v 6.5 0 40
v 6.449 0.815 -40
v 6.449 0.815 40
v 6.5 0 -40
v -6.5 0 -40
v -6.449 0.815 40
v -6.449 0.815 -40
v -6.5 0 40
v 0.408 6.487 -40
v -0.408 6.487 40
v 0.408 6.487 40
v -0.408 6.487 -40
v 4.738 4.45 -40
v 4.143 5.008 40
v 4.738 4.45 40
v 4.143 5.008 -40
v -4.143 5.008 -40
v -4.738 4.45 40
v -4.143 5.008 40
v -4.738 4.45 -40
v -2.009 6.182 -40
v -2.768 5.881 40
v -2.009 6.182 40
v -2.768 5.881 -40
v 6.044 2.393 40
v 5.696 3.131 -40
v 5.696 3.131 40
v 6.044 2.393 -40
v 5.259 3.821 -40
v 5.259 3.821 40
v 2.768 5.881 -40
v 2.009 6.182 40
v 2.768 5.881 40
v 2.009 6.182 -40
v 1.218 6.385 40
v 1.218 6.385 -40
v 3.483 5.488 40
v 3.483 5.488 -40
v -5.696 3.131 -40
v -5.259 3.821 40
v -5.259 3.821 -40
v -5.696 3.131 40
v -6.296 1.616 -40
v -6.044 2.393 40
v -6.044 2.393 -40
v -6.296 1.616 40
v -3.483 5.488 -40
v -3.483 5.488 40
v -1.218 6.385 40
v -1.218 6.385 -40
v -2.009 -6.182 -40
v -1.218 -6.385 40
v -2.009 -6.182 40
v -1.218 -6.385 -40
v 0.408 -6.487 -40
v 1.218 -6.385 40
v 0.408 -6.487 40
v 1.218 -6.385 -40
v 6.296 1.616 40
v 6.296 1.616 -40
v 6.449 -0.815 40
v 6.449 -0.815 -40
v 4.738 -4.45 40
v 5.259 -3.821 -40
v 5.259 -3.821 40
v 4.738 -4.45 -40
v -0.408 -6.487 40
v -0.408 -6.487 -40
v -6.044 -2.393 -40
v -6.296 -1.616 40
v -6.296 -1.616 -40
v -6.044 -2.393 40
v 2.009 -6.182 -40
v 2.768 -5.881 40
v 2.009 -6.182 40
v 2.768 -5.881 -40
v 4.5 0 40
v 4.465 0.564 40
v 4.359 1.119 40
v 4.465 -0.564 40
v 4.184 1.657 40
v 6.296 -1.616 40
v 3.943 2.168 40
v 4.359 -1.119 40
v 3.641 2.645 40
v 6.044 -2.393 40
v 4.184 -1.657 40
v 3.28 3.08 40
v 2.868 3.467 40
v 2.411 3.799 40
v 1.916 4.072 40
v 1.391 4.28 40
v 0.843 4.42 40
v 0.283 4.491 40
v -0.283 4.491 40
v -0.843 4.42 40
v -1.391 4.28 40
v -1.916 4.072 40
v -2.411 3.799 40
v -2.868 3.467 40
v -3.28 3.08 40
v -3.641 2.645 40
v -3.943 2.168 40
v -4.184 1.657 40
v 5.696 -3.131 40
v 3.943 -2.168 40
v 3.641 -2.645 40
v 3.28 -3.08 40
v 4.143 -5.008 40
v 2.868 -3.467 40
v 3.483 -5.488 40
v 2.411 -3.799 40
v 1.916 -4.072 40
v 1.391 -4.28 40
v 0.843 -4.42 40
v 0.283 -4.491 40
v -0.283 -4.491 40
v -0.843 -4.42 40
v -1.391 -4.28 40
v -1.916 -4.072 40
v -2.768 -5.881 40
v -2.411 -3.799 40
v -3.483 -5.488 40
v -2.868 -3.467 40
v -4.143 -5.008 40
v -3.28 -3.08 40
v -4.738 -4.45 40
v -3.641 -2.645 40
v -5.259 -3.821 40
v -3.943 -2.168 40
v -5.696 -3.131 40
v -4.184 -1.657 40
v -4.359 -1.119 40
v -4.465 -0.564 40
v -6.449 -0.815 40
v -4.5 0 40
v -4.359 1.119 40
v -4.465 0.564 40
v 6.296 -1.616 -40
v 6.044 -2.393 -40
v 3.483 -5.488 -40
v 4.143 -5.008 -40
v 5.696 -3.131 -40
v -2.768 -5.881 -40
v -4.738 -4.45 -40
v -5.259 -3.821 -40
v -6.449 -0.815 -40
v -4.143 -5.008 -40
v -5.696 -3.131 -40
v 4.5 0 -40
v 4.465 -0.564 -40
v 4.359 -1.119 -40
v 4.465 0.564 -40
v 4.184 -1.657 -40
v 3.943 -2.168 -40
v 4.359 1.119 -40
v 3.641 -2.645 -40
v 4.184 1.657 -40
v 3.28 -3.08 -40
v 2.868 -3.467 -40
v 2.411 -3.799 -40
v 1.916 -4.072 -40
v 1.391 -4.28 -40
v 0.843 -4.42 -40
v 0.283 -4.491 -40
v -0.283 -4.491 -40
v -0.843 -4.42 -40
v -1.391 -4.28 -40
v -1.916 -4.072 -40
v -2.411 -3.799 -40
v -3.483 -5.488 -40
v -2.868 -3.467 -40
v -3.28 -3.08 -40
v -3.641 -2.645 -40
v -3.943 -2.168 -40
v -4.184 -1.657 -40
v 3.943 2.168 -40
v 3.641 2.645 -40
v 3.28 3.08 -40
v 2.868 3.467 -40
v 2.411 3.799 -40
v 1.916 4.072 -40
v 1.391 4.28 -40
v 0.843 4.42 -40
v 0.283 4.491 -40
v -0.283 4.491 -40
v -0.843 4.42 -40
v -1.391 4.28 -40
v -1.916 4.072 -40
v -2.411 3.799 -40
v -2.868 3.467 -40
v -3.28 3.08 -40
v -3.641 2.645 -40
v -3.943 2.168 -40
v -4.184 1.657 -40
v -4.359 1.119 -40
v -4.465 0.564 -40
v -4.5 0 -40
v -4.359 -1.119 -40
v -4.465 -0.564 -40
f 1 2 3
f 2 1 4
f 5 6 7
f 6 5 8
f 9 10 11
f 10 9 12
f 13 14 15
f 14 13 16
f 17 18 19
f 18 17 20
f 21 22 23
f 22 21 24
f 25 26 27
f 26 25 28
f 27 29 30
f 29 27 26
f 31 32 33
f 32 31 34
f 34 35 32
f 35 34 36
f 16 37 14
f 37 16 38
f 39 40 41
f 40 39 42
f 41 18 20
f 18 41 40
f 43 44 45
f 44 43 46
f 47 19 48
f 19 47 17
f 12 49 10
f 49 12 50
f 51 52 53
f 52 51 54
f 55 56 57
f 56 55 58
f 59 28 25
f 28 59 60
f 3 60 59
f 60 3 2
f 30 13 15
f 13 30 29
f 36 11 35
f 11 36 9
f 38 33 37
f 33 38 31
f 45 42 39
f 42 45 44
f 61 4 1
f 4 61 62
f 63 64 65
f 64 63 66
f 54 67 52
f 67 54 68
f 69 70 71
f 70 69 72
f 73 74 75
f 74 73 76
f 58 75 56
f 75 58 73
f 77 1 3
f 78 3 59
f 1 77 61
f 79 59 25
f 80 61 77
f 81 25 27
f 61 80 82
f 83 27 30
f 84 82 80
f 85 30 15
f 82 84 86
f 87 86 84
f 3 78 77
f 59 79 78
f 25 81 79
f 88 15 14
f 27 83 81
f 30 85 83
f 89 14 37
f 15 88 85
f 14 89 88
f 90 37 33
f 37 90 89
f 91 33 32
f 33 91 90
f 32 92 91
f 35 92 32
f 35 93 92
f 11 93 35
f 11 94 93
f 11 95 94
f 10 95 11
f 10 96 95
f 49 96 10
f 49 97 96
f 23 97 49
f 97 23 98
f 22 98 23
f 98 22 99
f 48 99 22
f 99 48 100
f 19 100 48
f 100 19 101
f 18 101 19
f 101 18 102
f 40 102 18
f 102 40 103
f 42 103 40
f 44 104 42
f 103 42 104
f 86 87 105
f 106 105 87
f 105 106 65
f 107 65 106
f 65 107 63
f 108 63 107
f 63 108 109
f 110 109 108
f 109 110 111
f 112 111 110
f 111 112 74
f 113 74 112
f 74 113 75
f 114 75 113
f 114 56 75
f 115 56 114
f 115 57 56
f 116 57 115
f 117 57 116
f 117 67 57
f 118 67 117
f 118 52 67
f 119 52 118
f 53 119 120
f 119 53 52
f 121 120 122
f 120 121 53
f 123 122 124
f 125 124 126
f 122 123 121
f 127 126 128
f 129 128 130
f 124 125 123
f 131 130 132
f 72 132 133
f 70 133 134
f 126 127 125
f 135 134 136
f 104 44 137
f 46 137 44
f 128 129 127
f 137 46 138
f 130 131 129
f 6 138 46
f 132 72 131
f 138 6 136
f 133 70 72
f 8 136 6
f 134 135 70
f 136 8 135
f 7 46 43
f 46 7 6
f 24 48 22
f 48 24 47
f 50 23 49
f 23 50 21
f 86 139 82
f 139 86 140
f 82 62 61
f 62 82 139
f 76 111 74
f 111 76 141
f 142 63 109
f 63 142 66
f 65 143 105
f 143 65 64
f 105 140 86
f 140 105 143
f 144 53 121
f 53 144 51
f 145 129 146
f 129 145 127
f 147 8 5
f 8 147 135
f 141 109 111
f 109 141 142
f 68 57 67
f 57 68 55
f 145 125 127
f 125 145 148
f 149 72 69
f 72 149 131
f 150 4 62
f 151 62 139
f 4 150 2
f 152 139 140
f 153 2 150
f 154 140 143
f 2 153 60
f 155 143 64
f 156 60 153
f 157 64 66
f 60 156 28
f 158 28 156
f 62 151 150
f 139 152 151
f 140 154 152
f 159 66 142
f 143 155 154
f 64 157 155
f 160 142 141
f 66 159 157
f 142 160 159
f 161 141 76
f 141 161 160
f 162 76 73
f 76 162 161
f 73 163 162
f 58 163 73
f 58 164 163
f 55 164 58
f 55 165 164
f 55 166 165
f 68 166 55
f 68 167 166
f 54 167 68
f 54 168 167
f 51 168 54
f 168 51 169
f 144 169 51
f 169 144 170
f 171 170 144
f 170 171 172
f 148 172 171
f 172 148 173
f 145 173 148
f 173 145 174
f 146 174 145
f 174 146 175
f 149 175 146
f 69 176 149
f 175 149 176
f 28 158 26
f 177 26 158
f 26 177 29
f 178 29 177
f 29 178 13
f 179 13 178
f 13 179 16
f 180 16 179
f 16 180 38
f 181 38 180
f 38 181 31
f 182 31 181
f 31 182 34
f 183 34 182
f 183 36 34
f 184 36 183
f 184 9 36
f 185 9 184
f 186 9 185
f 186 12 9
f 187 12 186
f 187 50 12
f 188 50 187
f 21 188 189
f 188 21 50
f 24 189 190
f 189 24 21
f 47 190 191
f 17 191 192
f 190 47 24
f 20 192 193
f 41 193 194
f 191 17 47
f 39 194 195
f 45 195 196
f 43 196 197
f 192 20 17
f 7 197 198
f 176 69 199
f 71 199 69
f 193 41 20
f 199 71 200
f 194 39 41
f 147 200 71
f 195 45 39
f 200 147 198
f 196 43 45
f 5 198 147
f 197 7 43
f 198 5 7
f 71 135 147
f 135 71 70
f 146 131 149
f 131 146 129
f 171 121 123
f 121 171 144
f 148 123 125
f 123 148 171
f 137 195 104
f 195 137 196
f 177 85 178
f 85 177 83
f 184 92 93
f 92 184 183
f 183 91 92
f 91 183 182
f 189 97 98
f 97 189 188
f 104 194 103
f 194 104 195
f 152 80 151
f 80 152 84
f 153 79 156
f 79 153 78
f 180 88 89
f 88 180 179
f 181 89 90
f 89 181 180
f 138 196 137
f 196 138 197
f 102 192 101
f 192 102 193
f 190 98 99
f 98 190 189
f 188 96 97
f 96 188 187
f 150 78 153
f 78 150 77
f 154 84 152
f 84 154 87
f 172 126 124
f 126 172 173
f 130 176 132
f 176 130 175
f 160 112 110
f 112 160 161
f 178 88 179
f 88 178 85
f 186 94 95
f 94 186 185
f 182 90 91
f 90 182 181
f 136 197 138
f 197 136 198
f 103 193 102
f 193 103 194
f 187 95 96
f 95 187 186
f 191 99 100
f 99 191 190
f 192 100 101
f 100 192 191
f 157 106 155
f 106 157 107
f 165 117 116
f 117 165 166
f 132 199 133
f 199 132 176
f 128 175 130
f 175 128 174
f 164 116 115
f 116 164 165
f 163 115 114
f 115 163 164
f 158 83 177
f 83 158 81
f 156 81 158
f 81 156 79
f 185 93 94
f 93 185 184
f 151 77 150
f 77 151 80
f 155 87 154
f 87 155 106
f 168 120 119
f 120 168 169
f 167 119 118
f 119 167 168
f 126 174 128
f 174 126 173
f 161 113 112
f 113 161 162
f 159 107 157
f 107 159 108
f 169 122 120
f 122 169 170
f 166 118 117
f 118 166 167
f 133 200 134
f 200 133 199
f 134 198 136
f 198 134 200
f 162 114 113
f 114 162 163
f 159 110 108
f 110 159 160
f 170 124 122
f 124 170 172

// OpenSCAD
$fn = 50;


difference() {
	union() {
		translate(v = [0, 0, -40.0000000000]) {
			cylinder(h = 80, r = 6.5000000000);
		}
	}
	union() {
		translate(v = [0, 0, -100.0000000000]) {
			cylinder(h = 200, r = 4.5000000000);
		}
	}
}
